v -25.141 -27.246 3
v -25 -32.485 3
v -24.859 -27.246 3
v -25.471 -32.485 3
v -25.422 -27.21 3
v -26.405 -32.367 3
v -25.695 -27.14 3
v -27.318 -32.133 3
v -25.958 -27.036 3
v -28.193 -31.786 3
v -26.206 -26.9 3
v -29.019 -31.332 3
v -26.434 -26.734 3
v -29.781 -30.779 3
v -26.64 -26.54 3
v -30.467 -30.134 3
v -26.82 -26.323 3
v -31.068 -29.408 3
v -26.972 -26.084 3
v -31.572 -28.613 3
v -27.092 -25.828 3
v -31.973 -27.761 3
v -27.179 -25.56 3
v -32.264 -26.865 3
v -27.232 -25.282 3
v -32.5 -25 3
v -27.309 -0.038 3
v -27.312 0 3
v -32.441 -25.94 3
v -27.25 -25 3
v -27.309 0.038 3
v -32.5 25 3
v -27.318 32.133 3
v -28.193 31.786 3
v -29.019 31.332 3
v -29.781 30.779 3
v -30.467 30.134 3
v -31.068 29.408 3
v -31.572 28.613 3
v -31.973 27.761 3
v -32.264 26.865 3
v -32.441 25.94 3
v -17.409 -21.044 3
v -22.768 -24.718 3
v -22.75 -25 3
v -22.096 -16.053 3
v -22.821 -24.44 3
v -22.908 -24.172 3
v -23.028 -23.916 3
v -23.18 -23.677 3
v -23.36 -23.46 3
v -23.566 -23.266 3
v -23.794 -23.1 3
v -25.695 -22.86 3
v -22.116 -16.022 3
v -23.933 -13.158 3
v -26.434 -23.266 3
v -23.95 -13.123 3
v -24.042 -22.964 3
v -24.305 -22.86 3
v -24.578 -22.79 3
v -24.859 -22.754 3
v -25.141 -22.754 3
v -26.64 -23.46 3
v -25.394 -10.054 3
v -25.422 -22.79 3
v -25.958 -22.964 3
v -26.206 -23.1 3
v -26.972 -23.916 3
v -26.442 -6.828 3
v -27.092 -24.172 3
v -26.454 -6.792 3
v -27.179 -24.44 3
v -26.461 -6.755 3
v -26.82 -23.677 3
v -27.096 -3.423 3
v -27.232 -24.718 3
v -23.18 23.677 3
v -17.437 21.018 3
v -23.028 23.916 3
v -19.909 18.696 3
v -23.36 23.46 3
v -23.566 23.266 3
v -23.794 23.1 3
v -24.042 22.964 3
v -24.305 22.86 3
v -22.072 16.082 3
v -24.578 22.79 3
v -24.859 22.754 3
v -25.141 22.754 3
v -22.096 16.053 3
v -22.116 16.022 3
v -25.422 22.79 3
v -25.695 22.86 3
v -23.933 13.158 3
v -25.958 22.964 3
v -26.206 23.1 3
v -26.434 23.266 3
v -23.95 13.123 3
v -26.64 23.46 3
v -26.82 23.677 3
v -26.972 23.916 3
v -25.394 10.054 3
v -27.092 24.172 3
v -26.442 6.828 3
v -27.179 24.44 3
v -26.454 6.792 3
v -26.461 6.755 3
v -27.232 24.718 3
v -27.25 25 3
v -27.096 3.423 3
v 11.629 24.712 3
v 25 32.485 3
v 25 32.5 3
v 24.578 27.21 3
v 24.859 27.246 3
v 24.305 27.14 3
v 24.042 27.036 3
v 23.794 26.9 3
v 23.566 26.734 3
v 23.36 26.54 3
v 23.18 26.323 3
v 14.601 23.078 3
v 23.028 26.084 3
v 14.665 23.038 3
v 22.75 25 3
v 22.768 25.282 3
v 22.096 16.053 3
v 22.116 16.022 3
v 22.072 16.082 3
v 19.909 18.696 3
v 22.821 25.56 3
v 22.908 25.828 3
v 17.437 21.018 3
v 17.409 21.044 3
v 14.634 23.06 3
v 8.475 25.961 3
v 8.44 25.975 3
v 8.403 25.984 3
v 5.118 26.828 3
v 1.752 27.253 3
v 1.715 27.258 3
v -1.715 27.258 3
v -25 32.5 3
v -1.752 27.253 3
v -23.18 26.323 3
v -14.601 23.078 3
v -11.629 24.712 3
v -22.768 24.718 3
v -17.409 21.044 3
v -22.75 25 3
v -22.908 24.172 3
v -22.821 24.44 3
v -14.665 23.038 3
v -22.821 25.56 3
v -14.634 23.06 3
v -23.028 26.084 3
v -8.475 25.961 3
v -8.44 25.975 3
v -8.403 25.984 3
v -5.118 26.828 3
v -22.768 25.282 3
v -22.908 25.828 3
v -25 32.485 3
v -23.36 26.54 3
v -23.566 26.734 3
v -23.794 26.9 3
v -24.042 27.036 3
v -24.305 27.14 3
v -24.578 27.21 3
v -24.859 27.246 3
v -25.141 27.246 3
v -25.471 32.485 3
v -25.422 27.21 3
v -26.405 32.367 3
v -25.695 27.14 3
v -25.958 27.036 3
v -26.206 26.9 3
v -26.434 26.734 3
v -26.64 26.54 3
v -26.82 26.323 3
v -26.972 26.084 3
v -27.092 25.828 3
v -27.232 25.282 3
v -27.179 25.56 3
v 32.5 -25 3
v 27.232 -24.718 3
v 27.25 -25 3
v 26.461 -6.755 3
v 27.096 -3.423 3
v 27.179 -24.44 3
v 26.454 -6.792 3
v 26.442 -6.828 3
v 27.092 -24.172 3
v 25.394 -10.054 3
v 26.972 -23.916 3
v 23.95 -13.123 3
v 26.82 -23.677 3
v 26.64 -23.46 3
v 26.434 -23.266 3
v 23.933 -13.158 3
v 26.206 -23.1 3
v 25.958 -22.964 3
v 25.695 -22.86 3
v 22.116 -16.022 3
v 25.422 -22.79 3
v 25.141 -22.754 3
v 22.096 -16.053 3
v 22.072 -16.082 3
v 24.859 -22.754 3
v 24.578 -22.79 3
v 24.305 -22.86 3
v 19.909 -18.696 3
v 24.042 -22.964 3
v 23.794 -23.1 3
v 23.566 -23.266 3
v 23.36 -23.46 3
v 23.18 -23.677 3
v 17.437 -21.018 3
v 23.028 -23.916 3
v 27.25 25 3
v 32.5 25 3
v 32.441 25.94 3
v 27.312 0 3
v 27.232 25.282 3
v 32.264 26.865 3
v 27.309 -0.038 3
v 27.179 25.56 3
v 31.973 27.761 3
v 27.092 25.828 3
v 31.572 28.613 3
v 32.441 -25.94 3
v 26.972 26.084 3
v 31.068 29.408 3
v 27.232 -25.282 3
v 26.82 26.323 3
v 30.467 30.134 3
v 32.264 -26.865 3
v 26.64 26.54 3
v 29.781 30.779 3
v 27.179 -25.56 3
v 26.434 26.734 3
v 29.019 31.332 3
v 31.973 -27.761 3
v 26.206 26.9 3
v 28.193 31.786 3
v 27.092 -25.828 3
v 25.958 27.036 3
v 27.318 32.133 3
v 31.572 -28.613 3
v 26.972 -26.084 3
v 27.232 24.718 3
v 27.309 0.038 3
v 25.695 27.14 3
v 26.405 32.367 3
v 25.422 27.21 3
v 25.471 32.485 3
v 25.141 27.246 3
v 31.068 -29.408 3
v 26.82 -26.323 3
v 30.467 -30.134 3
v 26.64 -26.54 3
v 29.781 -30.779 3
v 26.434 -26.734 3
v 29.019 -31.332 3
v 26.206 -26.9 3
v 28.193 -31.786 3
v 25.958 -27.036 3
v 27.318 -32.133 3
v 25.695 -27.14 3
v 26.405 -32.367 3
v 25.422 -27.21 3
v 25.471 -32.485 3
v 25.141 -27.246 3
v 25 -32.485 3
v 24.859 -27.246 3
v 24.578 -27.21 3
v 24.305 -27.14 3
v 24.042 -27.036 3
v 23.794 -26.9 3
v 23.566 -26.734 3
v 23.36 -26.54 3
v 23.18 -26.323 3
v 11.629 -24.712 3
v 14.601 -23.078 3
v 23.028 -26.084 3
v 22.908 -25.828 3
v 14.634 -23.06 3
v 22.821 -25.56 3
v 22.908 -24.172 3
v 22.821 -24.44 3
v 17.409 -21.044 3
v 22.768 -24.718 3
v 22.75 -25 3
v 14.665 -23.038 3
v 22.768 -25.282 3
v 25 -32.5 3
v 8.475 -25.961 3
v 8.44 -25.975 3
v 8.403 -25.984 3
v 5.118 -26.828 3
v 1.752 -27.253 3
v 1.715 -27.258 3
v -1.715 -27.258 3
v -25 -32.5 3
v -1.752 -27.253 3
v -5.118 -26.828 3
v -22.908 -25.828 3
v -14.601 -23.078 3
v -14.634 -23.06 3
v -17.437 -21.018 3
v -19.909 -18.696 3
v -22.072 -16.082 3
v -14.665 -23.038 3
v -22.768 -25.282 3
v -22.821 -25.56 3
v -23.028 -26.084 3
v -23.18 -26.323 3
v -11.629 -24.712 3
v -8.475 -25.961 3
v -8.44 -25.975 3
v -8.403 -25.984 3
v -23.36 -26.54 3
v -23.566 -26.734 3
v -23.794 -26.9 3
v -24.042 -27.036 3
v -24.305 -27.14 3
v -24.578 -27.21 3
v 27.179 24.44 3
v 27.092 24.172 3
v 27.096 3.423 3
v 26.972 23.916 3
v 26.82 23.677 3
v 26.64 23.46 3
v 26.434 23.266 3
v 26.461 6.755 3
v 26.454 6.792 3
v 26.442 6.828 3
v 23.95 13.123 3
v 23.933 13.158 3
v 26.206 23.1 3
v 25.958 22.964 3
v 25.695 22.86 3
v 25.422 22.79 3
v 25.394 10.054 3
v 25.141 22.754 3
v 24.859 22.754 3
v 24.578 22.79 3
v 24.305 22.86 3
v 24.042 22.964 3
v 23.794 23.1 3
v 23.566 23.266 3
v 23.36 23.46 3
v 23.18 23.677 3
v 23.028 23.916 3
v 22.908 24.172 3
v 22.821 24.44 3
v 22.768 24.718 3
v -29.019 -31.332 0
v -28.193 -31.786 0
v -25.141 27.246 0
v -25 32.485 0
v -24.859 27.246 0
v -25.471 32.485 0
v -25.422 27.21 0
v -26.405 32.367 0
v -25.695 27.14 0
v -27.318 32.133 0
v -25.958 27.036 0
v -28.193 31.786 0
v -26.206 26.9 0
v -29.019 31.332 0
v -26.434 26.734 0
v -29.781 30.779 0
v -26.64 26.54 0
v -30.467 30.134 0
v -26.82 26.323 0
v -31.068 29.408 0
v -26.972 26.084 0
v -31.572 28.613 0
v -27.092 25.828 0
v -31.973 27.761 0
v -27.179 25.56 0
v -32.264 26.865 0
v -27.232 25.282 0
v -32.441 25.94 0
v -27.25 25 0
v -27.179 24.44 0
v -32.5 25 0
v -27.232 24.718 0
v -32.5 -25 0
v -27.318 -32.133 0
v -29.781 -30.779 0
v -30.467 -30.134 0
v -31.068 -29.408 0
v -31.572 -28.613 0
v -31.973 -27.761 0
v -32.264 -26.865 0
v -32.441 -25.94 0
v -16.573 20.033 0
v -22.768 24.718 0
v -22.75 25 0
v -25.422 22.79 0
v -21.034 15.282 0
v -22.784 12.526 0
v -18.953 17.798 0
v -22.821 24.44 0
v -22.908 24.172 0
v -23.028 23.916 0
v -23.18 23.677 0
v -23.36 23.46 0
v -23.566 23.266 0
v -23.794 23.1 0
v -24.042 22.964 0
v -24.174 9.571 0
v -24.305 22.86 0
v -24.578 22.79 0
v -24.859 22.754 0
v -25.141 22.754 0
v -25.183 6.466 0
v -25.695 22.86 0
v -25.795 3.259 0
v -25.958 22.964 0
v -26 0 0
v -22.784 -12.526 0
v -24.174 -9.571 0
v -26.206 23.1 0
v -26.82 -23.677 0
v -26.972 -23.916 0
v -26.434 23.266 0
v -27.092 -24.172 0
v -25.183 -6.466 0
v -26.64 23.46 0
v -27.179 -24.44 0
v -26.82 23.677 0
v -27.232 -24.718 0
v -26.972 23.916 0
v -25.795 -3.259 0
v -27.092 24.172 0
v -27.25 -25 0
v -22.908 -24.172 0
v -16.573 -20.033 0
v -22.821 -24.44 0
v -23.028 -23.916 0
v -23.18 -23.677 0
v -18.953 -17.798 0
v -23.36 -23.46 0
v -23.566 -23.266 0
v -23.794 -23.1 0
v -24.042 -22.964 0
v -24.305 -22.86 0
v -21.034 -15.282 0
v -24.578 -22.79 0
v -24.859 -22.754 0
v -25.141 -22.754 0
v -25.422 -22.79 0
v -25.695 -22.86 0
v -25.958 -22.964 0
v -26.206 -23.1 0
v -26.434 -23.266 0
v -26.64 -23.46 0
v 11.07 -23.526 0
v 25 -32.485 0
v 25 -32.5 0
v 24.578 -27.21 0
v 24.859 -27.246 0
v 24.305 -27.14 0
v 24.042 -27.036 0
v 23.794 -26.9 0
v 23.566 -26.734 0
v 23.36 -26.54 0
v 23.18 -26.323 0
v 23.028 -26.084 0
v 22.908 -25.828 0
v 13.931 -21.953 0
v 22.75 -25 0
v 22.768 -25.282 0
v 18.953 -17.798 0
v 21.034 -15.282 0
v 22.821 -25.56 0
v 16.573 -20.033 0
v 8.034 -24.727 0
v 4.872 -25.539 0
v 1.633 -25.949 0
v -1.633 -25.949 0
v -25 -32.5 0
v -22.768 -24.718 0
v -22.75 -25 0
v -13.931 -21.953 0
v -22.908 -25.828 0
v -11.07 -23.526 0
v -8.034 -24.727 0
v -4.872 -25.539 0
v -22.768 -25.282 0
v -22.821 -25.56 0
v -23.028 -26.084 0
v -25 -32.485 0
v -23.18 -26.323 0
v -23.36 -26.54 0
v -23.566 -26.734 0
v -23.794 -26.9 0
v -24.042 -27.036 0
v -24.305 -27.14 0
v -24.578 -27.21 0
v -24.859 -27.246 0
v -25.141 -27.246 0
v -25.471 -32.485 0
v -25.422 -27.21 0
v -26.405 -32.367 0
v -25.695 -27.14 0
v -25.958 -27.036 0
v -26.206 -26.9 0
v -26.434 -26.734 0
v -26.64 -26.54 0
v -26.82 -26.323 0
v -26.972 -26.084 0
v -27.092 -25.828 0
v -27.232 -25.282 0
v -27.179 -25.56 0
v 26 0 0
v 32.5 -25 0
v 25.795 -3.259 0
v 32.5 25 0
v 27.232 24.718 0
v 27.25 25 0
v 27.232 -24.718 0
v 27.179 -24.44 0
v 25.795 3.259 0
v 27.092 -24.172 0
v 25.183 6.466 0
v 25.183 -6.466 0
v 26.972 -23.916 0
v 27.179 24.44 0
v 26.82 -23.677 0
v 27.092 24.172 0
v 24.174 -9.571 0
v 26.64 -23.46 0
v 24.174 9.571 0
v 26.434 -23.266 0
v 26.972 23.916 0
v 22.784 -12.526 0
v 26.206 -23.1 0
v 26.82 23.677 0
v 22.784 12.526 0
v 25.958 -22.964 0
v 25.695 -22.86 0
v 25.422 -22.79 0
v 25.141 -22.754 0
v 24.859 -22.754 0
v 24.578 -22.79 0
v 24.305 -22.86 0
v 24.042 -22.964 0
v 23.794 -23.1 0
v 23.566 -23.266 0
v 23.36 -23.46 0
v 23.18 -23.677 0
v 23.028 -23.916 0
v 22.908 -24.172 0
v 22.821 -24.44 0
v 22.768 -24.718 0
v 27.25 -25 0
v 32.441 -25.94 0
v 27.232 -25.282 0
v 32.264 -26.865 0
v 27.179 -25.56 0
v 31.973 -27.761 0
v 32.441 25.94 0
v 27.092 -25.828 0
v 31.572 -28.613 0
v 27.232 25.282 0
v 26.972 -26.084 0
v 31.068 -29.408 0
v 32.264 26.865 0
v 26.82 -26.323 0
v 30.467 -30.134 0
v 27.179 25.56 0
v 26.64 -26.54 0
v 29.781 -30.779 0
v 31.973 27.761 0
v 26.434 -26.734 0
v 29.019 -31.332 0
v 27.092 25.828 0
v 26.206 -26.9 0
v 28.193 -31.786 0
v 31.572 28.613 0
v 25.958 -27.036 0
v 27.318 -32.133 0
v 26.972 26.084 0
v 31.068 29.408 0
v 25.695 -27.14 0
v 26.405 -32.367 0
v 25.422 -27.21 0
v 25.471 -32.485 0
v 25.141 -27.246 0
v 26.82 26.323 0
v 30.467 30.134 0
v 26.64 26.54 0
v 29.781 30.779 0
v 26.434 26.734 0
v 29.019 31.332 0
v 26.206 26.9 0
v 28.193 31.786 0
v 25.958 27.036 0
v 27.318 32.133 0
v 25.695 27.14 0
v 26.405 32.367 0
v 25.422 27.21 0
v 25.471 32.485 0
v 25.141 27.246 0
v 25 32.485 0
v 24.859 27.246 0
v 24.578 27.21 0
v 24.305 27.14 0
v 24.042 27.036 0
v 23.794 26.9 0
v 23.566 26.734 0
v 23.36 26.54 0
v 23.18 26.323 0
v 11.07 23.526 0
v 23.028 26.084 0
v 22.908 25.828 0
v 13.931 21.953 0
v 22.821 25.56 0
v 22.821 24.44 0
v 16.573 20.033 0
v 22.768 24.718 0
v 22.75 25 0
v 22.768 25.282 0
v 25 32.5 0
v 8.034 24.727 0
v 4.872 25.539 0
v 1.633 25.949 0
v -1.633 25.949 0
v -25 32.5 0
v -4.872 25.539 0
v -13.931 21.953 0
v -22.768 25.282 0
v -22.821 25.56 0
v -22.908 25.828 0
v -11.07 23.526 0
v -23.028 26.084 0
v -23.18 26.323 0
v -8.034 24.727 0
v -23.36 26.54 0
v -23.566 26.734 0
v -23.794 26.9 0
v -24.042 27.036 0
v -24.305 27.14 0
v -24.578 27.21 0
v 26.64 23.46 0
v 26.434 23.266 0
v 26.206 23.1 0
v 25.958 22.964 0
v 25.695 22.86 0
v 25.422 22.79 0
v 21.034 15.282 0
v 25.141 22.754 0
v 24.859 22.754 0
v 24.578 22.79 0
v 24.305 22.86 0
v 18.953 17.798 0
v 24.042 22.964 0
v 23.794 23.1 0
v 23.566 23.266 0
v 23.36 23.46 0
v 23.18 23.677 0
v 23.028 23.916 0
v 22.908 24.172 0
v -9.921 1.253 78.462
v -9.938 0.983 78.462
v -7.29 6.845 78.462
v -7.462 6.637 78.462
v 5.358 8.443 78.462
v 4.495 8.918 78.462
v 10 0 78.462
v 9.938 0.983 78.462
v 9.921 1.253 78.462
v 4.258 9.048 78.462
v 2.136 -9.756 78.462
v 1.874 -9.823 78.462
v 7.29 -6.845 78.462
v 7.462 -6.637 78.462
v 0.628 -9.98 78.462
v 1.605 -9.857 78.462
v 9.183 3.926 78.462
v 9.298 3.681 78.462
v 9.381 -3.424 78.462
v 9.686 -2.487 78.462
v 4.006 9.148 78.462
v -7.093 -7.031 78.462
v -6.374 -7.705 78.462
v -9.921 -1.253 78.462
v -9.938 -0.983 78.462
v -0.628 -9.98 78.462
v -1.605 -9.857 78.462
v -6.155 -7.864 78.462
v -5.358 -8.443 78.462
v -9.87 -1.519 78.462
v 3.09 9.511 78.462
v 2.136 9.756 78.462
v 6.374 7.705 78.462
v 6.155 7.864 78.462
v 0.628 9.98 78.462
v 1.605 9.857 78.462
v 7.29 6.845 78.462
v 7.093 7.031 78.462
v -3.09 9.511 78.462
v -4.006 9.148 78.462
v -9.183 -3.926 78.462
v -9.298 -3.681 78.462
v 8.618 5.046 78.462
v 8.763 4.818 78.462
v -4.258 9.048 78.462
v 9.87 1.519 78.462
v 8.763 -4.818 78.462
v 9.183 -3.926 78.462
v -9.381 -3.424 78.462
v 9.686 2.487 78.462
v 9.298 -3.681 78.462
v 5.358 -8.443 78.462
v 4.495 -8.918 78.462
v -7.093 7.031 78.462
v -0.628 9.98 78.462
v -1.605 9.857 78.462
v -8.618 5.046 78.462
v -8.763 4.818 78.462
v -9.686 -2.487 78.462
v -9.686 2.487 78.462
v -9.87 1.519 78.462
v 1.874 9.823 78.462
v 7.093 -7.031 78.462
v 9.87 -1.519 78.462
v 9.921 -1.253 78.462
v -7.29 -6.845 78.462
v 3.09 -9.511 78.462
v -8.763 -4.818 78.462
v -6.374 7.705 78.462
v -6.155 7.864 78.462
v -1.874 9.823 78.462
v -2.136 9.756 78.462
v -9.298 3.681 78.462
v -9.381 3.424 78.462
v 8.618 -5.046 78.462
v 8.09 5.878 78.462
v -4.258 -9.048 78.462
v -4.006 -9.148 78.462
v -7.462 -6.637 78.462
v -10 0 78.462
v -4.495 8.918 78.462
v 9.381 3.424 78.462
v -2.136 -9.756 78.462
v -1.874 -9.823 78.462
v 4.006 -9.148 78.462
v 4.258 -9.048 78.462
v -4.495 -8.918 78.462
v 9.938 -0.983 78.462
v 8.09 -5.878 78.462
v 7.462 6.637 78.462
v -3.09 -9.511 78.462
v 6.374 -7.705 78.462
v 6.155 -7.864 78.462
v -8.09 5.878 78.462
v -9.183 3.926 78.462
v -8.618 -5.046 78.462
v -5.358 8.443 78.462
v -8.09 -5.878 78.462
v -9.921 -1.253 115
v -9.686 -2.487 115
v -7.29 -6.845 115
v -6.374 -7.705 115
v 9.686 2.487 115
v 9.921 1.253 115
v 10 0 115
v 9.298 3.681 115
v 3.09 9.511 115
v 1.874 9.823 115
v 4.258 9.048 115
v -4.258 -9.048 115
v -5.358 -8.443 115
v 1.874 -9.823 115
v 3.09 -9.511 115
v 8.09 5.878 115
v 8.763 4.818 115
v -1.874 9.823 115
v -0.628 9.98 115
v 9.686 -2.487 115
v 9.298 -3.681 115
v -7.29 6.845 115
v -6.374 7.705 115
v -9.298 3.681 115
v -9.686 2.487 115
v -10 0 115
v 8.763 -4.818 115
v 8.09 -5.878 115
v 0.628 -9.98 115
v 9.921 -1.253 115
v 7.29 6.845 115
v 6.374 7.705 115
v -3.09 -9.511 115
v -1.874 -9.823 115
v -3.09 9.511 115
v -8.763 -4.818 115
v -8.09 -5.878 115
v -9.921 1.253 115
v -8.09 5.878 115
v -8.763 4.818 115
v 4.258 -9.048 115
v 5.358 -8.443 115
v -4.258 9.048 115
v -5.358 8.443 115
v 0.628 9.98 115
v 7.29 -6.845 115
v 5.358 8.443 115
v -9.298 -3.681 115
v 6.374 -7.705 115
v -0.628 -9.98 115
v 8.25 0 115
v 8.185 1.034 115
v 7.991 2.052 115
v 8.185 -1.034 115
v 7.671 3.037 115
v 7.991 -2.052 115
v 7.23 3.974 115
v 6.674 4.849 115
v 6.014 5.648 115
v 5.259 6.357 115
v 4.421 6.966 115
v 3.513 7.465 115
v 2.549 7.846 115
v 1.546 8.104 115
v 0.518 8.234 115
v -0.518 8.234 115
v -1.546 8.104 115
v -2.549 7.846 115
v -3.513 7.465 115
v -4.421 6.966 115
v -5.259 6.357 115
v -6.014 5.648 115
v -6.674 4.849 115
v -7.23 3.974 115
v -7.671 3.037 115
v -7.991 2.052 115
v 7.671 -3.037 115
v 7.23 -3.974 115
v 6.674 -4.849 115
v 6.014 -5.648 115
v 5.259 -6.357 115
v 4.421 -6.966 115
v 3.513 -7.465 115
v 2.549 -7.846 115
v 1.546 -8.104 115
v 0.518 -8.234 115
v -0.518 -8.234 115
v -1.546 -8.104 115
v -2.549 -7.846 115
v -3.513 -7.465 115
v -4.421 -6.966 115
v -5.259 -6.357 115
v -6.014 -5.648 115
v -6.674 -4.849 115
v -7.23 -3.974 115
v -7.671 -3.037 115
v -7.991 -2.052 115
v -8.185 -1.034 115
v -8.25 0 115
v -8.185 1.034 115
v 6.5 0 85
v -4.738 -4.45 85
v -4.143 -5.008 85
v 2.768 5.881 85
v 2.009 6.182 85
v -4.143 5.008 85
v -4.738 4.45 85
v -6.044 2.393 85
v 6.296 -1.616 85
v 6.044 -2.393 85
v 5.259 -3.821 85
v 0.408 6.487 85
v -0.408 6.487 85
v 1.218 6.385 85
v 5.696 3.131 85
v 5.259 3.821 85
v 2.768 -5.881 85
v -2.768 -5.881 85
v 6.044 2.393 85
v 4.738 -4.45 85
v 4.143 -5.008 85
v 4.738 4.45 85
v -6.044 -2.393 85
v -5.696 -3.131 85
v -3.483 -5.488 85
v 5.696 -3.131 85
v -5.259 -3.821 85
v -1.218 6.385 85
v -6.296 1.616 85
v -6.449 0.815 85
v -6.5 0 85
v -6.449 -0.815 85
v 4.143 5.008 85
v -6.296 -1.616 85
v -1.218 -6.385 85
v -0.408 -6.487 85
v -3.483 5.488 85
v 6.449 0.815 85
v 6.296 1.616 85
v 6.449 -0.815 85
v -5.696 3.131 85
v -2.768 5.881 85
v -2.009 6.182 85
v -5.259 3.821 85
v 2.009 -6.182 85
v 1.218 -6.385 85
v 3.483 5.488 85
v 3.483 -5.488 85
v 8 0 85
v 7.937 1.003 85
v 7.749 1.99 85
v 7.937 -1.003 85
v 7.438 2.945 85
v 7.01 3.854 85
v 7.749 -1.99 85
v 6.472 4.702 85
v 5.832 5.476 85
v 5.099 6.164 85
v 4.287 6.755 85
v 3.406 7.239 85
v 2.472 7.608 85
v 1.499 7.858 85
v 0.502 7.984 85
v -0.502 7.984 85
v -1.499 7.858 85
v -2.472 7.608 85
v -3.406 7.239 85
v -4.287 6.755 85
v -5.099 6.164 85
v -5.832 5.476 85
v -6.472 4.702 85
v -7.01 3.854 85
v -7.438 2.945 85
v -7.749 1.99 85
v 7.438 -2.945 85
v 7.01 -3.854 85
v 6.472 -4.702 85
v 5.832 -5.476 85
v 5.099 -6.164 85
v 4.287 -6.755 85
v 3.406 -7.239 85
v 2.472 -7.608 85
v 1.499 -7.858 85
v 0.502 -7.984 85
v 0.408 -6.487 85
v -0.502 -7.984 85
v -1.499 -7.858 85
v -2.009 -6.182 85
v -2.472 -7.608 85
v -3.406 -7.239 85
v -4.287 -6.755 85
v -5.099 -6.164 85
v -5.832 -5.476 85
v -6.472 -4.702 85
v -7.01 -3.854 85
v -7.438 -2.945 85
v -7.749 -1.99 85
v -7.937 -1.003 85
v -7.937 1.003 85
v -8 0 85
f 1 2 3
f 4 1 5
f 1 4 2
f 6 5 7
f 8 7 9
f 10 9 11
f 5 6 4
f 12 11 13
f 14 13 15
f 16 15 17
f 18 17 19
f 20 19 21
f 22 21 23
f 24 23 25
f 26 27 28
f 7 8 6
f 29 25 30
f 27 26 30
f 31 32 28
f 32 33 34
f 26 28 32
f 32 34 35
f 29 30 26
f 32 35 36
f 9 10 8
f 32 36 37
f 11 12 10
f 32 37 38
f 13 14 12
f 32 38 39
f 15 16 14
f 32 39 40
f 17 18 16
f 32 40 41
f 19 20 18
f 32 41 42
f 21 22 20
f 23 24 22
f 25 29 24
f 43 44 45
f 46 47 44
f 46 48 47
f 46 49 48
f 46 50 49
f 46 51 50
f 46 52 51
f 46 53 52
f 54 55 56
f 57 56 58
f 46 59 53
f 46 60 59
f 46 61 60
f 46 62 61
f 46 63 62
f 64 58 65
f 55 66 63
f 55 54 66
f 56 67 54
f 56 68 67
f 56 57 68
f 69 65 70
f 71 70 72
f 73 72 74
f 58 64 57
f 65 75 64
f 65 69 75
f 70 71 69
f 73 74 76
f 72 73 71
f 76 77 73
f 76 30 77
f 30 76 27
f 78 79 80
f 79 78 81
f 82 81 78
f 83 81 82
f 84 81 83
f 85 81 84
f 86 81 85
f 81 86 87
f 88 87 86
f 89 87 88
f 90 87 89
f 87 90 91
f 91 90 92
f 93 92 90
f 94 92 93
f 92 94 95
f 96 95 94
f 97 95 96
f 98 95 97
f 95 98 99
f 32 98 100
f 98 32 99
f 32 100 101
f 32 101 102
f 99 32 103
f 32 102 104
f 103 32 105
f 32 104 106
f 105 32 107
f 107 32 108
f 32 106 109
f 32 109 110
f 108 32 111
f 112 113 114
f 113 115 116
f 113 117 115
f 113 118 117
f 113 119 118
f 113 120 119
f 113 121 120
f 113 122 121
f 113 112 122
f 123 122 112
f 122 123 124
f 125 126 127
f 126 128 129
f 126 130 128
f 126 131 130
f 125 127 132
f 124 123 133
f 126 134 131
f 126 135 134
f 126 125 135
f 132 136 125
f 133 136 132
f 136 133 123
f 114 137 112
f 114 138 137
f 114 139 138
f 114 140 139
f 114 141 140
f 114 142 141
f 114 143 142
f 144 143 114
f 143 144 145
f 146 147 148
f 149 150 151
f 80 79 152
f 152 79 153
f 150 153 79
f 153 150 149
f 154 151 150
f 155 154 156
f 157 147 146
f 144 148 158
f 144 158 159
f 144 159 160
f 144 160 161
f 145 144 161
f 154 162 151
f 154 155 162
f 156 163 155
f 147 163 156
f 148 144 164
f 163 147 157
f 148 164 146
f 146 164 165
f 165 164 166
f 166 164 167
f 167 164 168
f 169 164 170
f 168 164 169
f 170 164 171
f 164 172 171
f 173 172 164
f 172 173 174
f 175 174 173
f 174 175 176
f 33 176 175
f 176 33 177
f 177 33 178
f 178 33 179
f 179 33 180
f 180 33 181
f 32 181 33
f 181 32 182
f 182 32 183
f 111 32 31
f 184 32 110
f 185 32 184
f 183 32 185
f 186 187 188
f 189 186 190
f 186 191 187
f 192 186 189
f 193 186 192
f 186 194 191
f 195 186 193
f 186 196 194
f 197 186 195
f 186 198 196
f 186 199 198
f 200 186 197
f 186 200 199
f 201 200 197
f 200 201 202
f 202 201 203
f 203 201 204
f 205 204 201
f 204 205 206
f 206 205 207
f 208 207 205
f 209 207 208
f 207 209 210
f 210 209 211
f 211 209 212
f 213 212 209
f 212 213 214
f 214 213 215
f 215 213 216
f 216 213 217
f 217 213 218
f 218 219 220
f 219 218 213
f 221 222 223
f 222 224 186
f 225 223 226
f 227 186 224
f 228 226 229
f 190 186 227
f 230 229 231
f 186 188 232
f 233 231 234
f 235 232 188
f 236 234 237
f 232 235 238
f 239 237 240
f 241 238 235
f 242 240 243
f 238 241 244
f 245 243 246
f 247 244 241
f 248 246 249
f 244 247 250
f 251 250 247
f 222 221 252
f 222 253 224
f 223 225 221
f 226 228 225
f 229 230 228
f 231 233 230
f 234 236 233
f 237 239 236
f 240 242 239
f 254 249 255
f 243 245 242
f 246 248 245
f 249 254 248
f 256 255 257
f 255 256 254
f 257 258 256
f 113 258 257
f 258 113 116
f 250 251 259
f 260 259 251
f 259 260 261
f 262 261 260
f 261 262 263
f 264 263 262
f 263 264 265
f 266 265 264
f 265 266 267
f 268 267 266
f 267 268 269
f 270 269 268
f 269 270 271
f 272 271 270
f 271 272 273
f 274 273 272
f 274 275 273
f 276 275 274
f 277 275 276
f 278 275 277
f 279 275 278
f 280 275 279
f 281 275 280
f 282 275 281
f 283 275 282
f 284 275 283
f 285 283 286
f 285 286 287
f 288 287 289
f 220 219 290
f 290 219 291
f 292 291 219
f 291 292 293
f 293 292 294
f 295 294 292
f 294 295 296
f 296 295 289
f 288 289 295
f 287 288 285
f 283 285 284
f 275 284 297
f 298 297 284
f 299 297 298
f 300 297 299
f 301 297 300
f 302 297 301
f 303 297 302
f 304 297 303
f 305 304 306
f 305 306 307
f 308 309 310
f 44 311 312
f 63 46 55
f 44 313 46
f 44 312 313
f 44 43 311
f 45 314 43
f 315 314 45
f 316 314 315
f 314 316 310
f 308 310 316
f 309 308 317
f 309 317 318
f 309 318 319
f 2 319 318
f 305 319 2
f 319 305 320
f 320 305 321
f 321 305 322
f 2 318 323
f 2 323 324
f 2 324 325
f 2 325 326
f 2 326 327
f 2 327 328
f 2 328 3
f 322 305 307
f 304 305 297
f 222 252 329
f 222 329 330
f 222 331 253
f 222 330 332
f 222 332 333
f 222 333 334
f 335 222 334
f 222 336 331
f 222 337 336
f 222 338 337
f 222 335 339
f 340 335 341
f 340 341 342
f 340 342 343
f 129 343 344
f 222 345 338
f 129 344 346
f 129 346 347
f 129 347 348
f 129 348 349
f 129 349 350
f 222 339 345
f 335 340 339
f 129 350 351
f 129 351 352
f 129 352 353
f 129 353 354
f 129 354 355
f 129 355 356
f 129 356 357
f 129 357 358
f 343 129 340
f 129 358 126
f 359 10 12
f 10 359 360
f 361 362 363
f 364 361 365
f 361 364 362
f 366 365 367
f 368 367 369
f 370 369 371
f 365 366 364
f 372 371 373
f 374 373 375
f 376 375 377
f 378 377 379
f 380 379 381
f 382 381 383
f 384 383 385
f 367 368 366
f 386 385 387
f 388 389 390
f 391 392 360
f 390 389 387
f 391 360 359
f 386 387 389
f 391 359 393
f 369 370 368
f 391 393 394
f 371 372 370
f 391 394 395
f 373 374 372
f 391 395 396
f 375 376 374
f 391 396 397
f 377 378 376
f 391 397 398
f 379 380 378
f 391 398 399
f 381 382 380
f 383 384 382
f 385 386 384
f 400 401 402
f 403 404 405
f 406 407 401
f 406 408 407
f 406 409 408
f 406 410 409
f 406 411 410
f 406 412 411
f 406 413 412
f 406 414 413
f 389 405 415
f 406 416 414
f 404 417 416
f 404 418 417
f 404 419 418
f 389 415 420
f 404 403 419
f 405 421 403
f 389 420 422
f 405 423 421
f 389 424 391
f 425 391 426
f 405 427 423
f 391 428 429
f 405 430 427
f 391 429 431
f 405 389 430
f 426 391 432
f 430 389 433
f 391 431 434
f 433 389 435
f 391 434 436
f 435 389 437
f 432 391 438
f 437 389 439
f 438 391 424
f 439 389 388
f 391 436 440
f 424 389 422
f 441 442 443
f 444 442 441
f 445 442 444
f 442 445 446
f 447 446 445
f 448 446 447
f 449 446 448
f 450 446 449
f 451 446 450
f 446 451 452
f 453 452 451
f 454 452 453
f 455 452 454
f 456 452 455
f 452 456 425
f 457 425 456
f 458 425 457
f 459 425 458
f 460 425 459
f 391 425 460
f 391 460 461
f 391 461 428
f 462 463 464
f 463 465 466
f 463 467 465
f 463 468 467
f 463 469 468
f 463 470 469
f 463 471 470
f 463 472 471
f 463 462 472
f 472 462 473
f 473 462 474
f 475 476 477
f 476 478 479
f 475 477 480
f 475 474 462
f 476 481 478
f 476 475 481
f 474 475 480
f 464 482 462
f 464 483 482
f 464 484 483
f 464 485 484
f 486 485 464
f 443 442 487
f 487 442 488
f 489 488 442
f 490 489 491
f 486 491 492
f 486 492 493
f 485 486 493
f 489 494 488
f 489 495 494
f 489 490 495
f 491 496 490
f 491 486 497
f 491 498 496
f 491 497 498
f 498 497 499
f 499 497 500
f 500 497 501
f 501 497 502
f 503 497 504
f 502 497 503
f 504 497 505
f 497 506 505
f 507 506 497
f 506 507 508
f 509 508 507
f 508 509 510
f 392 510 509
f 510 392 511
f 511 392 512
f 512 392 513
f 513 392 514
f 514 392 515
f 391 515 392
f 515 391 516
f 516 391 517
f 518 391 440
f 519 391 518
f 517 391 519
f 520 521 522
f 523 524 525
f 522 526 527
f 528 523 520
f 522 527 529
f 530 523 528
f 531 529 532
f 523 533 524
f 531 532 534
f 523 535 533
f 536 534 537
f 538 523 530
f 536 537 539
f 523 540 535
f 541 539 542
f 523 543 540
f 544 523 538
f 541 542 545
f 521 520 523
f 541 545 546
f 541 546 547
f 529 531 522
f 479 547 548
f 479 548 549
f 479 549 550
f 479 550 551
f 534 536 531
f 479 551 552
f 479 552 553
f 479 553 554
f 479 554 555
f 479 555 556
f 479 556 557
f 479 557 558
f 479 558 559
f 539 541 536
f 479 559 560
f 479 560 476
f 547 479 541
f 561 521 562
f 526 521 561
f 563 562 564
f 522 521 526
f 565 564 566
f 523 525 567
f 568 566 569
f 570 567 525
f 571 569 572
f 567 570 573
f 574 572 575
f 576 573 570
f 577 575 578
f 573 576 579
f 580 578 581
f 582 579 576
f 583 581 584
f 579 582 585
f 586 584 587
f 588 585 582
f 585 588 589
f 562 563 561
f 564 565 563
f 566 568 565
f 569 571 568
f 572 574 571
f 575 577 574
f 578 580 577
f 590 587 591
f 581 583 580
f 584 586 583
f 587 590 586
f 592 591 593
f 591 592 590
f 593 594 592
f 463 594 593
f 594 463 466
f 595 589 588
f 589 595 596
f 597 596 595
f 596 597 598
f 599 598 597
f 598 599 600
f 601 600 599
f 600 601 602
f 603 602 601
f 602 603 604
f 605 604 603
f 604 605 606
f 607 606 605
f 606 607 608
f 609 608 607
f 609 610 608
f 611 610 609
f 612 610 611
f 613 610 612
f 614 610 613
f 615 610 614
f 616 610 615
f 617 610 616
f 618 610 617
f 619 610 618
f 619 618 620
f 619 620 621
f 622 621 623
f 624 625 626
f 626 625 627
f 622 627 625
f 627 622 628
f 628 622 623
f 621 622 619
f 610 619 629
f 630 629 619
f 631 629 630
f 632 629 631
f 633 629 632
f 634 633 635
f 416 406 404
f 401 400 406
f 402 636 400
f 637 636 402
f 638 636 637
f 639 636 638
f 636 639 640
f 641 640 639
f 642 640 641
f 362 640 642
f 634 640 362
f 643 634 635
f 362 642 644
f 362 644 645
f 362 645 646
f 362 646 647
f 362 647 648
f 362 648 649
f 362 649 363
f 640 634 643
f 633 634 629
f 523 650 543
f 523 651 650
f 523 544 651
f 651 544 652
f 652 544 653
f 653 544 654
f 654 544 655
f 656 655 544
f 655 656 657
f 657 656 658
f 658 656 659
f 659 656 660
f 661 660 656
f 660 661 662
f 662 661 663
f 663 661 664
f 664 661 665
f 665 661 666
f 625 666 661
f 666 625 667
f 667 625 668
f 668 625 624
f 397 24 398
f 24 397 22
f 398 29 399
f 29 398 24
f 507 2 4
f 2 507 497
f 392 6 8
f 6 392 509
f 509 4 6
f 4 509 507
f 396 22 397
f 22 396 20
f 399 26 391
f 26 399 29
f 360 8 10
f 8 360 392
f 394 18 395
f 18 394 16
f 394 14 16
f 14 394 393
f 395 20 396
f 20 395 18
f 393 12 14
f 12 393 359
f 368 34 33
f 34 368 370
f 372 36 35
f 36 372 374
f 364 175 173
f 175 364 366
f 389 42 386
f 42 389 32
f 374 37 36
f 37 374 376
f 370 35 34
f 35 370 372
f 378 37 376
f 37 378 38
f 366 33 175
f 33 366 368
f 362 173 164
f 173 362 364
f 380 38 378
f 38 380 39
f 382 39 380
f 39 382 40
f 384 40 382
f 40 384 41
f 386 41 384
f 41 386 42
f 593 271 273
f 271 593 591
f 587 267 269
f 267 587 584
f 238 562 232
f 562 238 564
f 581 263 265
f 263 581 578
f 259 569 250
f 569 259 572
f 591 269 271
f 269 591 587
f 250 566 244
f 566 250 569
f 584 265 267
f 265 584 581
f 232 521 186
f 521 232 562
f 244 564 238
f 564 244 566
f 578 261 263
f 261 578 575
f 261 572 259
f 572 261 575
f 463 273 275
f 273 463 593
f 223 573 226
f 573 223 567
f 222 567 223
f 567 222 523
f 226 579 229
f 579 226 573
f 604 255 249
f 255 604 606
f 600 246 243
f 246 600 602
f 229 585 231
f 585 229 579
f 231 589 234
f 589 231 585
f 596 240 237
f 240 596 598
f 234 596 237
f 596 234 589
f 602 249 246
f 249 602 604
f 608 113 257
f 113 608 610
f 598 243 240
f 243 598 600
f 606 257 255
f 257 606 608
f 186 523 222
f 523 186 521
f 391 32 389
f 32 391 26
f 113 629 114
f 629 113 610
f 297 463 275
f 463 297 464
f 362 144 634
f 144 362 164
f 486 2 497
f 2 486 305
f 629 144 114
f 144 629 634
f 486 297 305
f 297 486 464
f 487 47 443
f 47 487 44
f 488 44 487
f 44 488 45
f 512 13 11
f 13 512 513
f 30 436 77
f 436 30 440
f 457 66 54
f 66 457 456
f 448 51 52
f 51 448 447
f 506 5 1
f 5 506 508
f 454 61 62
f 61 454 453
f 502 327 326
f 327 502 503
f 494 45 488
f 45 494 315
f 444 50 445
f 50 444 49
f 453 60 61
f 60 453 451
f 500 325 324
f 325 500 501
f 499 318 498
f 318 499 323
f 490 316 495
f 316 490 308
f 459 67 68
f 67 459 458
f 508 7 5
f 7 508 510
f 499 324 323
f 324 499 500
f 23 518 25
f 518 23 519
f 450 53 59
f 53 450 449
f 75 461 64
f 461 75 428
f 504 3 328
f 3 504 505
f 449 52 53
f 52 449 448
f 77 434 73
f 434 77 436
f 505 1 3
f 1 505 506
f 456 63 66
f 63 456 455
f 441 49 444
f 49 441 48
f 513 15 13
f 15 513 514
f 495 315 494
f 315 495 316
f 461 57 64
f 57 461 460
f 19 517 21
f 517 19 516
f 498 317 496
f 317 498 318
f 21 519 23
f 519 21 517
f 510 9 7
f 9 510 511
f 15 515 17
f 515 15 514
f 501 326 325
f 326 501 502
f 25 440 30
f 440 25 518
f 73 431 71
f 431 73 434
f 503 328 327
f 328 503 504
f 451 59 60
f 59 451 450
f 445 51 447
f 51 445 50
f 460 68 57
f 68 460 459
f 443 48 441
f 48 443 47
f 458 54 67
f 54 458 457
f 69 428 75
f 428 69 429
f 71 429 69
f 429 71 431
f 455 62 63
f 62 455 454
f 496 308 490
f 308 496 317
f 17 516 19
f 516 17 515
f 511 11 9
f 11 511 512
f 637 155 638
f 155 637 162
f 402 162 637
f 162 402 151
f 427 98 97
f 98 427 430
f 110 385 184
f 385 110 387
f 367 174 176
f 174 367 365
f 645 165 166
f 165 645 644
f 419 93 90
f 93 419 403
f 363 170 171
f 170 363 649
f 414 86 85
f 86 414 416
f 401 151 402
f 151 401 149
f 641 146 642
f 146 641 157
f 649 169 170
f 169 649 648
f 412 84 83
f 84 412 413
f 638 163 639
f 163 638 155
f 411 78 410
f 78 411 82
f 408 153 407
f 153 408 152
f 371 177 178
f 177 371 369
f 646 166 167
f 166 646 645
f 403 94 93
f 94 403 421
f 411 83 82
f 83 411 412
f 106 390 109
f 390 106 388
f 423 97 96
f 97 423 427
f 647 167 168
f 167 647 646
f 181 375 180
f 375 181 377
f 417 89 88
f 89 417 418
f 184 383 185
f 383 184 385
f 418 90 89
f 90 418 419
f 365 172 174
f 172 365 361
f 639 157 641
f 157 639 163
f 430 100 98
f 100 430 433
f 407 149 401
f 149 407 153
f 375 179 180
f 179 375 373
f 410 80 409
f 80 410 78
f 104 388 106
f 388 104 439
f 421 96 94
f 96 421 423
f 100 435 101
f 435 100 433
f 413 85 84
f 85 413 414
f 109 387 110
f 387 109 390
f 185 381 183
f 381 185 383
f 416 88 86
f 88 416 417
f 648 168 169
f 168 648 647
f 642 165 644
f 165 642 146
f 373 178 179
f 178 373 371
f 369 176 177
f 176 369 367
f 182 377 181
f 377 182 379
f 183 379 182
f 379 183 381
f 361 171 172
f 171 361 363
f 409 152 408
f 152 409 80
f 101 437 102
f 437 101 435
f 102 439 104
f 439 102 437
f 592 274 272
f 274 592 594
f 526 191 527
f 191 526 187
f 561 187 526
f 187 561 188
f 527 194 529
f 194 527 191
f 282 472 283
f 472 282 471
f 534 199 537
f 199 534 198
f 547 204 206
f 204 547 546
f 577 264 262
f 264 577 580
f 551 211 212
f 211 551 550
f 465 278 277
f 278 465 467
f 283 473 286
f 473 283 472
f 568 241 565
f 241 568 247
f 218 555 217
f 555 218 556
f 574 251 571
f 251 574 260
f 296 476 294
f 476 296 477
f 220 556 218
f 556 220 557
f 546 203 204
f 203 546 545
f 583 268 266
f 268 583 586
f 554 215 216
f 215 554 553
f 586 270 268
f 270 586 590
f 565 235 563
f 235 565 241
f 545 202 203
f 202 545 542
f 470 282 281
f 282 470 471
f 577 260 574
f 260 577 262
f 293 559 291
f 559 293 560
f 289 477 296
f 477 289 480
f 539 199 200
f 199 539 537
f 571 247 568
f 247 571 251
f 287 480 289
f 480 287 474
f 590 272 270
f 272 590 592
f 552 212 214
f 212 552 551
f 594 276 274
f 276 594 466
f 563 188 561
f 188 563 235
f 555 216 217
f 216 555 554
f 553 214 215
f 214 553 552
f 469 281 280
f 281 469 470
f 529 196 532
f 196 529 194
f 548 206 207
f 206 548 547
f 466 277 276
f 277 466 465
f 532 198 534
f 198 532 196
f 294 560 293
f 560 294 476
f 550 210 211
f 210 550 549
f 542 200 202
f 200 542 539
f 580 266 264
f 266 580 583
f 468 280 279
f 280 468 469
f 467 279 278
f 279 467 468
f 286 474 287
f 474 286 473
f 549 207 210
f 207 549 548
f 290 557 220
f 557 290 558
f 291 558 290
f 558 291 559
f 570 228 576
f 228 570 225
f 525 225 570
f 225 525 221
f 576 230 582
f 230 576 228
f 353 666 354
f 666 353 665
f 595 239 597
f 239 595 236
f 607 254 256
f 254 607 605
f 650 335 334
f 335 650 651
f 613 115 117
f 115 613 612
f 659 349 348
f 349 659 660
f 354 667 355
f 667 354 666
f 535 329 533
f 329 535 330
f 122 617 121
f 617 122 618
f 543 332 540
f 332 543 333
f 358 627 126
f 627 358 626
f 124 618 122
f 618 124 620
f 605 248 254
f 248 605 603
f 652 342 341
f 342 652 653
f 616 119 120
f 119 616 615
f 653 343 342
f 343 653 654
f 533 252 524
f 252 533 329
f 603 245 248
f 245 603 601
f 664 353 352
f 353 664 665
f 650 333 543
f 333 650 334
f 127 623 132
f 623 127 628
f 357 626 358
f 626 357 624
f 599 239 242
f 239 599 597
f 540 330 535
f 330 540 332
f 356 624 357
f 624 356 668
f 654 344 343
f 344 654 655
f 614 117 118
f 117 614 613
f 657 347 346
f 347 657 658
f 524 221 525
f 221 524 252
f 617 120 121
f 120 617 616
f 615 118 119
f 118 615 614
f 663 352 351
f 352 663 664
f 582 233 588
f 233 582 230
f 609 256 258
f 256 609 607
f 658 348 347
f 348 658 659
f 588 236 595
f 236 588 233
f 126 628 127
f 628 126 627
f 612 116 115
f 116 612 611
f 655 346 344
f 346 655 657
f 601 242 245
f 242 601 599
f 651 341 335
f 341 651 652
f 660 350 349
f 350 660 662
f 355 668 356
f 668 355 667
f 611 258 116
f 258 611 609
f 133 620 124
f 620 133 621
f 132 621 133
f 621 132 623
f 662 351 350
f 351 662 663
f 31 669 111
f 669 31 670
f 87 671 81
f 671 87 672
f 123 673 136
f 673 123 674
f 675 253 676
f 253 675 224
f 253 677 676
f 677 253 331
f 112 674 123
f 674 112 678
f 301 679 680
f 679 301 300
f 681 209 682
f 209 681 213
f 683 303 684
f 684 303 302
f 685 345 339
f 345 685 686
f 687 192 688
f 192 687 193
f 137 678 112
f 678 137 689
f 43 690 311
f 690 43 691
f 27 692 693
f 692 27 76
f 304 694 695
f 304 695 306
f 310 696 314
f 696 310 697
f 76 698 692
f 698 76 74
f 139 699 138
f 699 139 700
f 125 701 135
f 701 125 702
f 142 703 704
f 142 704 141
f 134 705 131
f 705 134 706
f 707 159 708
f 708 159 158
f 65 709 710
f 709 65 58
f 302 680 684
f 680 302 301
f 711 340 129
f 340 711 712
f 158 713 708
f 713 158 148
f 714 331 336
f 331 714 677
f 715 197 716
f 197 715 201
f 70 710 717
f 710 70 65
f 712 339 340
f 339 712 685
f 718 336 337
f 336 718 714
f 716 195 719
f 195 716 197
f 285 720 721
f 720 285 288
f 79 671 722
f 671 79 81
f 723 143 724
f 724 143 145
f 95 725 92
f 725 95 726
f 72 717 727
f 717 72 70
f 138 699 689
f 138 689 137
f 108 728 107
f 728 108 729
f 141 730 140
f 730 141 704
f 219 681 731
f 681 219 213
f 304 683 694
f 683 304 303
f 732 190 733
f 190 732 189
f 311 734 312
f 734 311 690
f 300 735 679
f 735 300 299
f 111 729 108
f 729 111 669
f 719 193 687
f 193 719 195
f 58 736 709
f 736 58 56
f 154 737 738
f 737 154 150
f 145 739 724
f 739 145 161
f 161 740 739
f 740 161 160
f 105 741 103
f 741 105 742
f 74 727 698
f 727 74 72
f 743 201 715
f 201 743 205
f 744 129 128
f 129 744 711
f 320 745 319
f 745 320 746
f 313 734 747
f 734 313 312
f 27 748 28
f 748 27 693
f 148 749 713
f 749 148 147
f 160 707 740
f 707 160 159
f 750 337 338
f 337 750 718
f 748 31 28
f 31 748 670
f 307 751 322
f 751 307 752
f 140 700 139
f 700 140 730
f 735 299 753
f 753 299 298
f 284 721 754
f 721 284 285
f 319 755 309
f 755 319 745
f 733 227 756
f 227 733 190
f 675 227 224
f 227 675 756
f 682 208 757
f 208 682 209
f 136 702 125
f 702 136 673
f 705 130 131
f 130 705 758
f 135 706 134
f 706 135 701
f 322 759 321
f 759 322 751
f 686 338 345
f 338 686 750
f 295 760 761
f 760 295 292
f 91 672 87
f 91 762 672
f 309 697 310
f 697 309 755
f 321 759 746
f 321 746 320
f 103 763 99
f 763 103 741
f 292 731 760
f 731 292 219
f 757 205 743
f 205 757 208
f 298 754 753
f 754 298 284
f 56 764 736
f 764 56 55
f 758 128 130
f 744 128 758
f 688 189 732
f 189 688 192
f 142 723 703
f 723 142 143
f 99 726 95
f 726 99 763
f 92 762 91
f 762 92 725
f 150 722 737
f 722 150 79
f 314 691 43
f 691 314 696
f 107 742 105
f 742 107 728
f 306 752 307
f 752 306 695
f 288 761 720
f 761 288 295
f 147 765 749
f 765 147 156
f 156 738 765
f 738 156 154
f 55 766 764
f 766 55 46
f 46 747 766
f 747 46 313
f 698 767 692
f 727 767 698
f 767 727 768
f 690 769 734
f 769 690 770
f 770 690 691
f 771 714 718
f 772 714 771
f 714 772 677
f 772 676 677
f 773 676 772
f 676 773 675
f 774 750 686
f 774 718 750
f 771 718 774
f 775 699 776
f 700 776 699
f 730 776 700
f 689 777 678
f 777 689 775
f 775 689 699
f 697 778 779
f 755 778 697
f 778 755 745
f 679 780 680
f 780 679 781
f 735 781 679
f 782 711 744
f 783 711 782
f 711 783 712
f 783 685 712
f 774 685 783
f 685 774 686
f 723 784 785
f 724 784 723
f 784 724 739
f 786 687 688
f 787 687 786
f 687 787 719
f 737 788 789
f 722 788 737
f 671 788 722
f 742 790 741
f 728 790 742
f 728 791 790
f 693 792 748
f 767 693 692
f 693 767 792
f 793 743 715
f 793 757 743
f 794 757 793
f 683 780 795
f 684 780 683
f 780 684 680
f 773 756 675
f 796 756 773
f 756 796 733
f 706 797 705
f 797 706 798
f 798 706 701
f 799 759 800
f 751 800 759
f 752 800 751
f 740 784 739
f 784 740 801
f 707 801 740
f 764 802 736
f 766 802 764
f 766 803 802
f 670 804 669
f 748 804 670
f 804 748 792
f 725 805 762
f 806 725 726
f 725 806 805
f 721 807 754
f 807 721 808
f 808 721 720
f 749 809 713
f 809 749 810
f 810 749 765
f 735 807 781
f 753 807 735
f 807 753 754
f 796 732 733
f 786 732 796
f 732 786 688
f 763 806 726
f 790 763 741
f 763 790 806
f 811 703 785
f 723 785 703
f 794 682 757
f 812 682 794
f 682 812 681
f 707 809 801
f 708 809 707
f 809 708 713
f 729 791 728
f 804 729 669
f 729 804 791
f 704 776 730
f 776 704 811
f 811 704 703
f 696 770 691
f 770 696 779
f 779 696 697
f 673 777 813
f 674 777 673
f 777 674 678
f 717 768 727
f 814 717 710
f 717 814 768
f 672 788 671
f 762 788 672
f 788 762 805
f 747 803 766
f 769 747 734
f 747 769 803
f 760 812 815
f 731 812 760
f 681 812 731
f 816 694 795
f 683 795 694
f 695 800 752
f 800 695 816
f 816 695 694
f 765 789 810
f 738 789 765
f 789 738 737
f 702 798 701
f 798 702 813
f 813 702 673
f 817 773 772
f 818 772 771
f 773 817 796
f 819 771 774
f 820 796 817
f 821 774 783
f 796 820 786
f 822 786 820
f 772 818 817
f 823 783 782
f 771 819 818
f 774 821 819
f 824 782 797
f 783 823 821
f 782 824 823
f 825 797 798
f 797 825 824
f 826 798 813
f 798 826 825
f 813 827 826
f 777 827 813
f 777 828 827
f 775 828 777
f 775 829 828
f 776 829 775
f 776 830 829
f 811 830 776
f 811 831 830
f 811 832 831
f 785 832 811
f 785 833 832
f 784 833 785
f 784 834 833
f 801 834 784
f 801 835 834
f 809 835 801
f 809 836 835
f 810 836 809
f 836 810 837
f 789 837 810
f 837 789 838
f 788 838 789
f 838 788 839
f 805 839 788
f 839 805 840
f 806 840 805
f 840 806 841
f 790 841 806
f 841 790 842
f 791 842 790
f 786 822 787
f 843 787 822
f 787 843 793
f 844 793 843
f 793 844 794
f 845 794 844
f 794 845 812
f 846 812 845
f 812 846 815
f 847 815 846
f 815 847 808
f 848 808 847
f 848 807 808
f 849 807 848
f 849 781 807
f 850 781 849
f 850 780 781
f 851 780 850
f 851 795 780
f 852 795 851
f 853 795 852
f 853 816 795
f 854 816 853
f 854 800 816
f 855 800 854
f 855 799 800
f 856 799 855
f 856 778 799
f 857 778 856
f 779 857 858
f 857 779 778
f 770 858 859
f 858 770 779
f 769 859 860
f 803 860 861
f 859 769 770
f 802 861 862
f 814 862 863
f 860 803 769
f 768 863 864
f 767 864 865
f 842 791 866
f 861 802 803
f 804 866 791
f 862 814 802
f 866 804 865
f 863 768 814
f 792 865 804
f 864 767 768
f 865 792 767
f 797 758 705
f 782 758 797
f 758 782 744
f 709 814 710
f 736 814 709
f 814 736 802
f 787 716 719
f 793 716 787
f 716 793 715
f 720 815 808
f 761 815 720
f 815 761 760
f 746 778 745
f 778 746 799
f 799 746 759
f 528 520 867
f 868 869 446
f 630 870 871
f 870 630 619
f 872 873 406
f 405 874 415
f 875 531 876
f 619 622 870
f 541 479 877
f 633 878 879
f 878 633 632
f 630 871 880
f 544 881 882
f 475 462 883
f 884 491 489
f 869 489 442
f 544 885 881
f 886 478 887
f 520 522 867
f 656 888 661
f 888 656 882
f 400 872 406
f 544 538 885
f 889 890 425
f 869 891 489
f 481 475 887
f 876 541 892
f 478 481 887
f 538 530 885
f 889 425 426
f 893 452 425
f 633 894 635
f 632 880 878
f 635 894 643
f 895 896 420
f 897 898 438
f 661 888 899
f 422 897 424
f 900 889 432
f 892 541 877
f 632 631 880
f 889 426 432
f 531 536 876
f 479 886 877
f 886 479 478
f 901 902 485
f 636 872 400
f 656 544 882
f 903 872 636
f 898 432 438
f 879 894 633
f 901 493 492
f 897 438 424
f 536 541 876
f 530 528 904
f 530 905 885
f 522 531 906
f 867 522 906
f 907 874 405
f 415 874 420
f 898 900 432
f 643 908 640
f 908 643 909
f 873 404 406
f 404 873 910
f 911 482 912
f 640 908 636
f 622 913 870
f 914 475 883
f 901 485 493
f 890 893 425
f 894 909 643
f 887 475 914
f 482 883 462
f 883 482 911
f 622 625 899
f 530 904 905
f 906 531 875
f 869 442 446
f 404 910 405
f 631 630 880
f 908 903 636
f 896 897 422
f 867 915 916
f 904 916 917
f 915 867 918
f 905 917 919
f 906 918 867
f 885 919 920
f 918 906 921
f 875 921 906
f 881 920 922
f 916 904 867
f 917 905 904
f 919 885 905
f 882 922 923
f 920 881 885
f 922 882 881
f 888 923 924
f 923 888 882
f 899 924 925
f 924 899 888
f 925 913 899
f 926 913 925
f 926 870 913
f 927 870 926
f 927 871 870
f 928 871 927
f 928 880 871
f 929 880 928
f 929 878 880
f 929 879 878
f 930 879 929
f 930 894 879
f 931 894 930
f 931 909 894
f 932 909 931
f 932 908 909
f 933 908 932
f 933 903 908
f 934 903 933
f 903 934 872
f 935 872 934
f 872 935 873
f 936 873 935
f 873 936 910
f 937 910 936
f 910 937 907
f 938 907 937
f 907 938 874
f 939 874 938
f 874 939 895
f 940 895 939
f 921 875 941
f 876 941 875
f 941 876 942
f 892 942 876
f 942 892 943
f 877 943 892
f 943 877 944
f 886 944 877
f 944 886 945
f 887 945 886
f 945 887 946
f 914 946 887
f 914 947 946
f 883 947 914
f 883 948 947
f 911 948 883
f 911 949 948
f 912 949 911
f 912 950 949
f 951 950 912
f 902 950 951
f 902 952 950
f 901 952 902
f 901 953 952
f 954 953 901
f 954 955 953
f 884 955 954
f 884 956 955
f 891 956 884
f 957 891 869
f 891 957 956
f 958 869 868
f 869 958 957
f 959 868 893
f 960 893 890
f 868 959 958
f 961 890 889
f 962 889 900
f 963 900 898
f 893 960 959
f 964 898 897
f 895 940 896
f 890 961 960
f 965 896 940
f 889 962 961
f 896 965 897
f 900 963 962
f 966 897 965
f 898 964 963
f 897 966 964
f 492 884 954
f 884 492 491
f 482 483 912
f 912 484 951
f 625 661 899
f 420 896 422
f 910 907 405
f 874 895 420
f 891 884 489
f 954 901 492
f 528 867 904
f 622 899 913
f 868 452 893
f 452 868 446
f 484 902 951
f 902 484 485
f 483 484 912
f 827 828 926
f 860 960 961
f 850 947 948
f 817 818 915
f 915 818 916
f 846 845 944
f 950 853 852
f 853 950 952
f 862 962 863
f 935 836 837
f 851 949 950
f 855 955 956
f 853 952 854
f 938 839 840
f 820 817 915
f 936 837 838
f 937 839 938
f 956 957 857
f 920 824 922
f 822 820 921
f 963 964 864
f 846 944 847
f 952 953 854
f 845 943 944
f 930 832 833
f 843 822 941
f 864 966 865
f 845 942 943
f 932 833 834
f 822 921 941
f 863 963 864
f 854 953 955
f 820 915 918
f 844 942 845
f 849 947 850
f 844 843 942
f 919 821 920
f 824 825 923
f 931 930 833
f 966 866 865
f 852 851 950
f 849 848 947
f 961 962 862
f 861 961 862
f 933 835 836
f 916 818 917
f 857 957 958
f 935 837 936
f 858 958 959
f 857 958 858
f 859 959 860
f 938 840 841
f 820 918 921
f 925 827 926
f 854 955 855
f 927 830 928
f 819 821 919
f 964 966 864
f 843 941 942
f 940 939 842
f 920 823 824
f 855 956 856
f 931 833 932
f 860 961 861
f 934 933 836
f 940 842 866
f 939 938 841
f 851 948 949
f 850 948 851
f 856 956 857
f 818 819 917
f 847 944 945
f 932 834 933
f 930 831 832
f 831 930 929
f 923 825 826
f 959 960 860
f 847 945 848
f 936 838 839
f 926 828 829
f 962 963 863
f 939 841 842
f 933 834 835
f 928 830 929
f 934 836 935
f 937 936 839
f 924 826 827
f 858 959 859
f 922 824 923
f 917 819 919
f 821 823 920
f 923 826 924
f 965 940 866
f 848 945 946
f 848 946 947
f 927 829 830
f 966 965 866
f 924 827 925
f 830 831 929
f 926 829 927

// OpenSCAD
$fn = 50;

module flansch(breite_flansch, abstand_bohrungen, durchmesser_bohrung, hoehe){
    radius_abrundung=(breite_flansch-abstand_bohrungen)/2;
    difference(){
        union(){
            translate([-breite_flansch/2, -breite_flansch/2+radius_abrundung, 0]){
                cube([breite_flansch, breite_flansch-2*radius_abrundung, hoehe]);
                }
            translate([-breite_flansch/2+radius_abrundung, -breite_flansch/2, 0]){
                cube([breite_flansch-2*radius_abrundung, breite_flansch, hoehe]);
                }
            for(x = [-1, 1]){
                for (y = [-1, 1]){
                    translate([x * (breite_flansch/2-radius_abrundung), y * (breite_flansch/2-radius_abrundung), 0]){
                        cylinder(hoehe, radius_abrundung, radius_abrundung);
                        }
                    }
                }
            }
        for(x = [-1, 1]){
            for (y = [-1, 1]){
                translate([x * (breite_flansch/2-radius_abrundung), y * (breite_flansch/2-radius_abrundung), 0]){
                    cylinder(hoehe, durchmesser_bohrung/2, durchmesser_bohrung/2);
                    }
                }
            }
        }
    }


hoehe_flansch=3;
bohrung = 4.5;
laenge_konus = 170;
wandung= 2;
durchmesser_ventilator = 117;
durchmesser_ende = 13;
breite_flansch_oben = 65;
laenge_cylinder = 30;

difference(){
    union(){
        flansch(breite_flansch_oben, breite_flansch_oben-15, bohrung, hoehe_flansch);
        cylinder(laenge_konus/2, (durchmesser_ventilator-durchmesser_ende)/4+wandung, durchmesser_ende/2+wandung);
        translate([0,0,laenge_konus/2-20]){
            cylinder(laenge_cylinder+20, 10, 10);
            }            
        }
    union(){
        cylinder(laenge_konus/2, (durchmesser_ventilator-durchmesser_ende)/4, durchmesser_ende/2);
        translate([0,0,laenge_konus/2]){
            cylinder(laenge_cylinder, 16/2, 16.5/2);
            }
        }
    }
